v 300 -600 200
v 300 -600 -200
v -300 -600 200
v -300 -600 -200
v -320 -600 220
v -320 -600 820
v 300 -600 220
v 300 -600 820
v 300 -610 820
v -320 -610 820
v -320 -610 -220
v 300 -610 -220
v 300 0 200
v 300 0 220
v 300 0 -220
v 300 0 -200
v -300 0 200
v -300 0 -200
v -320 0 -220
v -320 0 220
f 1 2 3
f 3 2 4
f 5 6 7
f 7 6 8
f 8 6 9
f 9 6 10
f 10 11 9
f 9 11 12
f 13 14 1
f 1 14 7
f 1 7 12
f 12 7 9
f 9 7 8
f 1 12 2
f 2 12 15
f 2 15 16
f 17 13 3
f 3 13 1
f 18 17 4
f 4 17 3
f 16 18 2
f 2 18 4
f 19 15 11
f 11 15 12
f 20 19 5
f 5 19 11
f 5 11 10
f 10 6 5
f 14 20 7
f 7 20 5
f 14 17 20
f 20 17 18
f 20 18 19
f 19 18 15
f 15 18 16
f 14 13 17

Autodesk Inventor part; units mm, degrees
ref_plane "YZ Plane" through (0, 0, 0) normal (1, 0, 0) x (0, 1, 0)
ref_plane "XZ Plane" through (0, 0, 0) normal (0, 1, 0) x (-1, 0, 0)
ref_plane "XY Plane" through (0, 0, 0) normal (0, 0, 1) x (1, 0, 0)
sketch "Sketch1" plane through (0, 0, 0) normal (0, 1, 0) x (-1, 0, 0)
  line L0 (300, 200) -> (-300, 200)
  line L1 (-300, 200) -> (-300, -200)
  line L2 (-300, -200) -> (300, -200)
  line L3 (300, -200) -> (300, 200)
  line L4 (300, 200) -> (-300, -200) construction
  line L5 (-300, 200) -> (300, -200) construction
  line L6 (320, 220) -> (-320, 220)
  line L7 (-320, 220) -> (-320, 200)
  line L8 (-300, -220) -> (320, -220)
  line L9 (320, -220) -> (320, 220)
  line L10 (320, 220) -> (-320, -220) construction
  line L11 (-320, 220) -> (320, -220) construction
  line L12 (-300, -200) -> (-300, -220)
  line L13 (-300, 200) -> (-300, 220)
  point P0 (0, 0)
  dimension "d0" = 600
  dimension "d1" = 400
  dimension "d2" = 640
  dimension "d3" = 440
extrude "Extrusion1" add sketch "Sketch1" against normal blind 600 contours L0 L13 L6 L9 L8 L12 L2 L3
sketch "Sketch2" plane through (0, -600, 0) normal (0, -1, 0) x (1, 0, 0)
  line L0 (-320, -220) -> (-320, 220) projected
  line L1 (-320, -220) -> (300, -220)
  line L2 (300, -220) -> (300, 820)
  line L3 (300, 820) -> (-320, 820)
  line L4 (-320, 820) -> (-320, -220)
  point P0 (300, 220)
  point P1 (-320, 220)
  dimension "d14" = 1040
  dimension "d15" = 620
extrude "Extrusion2" add sketch "Sketch2" along normal blind 10
properties part number "Stage" material "Wood (Cherry)"
